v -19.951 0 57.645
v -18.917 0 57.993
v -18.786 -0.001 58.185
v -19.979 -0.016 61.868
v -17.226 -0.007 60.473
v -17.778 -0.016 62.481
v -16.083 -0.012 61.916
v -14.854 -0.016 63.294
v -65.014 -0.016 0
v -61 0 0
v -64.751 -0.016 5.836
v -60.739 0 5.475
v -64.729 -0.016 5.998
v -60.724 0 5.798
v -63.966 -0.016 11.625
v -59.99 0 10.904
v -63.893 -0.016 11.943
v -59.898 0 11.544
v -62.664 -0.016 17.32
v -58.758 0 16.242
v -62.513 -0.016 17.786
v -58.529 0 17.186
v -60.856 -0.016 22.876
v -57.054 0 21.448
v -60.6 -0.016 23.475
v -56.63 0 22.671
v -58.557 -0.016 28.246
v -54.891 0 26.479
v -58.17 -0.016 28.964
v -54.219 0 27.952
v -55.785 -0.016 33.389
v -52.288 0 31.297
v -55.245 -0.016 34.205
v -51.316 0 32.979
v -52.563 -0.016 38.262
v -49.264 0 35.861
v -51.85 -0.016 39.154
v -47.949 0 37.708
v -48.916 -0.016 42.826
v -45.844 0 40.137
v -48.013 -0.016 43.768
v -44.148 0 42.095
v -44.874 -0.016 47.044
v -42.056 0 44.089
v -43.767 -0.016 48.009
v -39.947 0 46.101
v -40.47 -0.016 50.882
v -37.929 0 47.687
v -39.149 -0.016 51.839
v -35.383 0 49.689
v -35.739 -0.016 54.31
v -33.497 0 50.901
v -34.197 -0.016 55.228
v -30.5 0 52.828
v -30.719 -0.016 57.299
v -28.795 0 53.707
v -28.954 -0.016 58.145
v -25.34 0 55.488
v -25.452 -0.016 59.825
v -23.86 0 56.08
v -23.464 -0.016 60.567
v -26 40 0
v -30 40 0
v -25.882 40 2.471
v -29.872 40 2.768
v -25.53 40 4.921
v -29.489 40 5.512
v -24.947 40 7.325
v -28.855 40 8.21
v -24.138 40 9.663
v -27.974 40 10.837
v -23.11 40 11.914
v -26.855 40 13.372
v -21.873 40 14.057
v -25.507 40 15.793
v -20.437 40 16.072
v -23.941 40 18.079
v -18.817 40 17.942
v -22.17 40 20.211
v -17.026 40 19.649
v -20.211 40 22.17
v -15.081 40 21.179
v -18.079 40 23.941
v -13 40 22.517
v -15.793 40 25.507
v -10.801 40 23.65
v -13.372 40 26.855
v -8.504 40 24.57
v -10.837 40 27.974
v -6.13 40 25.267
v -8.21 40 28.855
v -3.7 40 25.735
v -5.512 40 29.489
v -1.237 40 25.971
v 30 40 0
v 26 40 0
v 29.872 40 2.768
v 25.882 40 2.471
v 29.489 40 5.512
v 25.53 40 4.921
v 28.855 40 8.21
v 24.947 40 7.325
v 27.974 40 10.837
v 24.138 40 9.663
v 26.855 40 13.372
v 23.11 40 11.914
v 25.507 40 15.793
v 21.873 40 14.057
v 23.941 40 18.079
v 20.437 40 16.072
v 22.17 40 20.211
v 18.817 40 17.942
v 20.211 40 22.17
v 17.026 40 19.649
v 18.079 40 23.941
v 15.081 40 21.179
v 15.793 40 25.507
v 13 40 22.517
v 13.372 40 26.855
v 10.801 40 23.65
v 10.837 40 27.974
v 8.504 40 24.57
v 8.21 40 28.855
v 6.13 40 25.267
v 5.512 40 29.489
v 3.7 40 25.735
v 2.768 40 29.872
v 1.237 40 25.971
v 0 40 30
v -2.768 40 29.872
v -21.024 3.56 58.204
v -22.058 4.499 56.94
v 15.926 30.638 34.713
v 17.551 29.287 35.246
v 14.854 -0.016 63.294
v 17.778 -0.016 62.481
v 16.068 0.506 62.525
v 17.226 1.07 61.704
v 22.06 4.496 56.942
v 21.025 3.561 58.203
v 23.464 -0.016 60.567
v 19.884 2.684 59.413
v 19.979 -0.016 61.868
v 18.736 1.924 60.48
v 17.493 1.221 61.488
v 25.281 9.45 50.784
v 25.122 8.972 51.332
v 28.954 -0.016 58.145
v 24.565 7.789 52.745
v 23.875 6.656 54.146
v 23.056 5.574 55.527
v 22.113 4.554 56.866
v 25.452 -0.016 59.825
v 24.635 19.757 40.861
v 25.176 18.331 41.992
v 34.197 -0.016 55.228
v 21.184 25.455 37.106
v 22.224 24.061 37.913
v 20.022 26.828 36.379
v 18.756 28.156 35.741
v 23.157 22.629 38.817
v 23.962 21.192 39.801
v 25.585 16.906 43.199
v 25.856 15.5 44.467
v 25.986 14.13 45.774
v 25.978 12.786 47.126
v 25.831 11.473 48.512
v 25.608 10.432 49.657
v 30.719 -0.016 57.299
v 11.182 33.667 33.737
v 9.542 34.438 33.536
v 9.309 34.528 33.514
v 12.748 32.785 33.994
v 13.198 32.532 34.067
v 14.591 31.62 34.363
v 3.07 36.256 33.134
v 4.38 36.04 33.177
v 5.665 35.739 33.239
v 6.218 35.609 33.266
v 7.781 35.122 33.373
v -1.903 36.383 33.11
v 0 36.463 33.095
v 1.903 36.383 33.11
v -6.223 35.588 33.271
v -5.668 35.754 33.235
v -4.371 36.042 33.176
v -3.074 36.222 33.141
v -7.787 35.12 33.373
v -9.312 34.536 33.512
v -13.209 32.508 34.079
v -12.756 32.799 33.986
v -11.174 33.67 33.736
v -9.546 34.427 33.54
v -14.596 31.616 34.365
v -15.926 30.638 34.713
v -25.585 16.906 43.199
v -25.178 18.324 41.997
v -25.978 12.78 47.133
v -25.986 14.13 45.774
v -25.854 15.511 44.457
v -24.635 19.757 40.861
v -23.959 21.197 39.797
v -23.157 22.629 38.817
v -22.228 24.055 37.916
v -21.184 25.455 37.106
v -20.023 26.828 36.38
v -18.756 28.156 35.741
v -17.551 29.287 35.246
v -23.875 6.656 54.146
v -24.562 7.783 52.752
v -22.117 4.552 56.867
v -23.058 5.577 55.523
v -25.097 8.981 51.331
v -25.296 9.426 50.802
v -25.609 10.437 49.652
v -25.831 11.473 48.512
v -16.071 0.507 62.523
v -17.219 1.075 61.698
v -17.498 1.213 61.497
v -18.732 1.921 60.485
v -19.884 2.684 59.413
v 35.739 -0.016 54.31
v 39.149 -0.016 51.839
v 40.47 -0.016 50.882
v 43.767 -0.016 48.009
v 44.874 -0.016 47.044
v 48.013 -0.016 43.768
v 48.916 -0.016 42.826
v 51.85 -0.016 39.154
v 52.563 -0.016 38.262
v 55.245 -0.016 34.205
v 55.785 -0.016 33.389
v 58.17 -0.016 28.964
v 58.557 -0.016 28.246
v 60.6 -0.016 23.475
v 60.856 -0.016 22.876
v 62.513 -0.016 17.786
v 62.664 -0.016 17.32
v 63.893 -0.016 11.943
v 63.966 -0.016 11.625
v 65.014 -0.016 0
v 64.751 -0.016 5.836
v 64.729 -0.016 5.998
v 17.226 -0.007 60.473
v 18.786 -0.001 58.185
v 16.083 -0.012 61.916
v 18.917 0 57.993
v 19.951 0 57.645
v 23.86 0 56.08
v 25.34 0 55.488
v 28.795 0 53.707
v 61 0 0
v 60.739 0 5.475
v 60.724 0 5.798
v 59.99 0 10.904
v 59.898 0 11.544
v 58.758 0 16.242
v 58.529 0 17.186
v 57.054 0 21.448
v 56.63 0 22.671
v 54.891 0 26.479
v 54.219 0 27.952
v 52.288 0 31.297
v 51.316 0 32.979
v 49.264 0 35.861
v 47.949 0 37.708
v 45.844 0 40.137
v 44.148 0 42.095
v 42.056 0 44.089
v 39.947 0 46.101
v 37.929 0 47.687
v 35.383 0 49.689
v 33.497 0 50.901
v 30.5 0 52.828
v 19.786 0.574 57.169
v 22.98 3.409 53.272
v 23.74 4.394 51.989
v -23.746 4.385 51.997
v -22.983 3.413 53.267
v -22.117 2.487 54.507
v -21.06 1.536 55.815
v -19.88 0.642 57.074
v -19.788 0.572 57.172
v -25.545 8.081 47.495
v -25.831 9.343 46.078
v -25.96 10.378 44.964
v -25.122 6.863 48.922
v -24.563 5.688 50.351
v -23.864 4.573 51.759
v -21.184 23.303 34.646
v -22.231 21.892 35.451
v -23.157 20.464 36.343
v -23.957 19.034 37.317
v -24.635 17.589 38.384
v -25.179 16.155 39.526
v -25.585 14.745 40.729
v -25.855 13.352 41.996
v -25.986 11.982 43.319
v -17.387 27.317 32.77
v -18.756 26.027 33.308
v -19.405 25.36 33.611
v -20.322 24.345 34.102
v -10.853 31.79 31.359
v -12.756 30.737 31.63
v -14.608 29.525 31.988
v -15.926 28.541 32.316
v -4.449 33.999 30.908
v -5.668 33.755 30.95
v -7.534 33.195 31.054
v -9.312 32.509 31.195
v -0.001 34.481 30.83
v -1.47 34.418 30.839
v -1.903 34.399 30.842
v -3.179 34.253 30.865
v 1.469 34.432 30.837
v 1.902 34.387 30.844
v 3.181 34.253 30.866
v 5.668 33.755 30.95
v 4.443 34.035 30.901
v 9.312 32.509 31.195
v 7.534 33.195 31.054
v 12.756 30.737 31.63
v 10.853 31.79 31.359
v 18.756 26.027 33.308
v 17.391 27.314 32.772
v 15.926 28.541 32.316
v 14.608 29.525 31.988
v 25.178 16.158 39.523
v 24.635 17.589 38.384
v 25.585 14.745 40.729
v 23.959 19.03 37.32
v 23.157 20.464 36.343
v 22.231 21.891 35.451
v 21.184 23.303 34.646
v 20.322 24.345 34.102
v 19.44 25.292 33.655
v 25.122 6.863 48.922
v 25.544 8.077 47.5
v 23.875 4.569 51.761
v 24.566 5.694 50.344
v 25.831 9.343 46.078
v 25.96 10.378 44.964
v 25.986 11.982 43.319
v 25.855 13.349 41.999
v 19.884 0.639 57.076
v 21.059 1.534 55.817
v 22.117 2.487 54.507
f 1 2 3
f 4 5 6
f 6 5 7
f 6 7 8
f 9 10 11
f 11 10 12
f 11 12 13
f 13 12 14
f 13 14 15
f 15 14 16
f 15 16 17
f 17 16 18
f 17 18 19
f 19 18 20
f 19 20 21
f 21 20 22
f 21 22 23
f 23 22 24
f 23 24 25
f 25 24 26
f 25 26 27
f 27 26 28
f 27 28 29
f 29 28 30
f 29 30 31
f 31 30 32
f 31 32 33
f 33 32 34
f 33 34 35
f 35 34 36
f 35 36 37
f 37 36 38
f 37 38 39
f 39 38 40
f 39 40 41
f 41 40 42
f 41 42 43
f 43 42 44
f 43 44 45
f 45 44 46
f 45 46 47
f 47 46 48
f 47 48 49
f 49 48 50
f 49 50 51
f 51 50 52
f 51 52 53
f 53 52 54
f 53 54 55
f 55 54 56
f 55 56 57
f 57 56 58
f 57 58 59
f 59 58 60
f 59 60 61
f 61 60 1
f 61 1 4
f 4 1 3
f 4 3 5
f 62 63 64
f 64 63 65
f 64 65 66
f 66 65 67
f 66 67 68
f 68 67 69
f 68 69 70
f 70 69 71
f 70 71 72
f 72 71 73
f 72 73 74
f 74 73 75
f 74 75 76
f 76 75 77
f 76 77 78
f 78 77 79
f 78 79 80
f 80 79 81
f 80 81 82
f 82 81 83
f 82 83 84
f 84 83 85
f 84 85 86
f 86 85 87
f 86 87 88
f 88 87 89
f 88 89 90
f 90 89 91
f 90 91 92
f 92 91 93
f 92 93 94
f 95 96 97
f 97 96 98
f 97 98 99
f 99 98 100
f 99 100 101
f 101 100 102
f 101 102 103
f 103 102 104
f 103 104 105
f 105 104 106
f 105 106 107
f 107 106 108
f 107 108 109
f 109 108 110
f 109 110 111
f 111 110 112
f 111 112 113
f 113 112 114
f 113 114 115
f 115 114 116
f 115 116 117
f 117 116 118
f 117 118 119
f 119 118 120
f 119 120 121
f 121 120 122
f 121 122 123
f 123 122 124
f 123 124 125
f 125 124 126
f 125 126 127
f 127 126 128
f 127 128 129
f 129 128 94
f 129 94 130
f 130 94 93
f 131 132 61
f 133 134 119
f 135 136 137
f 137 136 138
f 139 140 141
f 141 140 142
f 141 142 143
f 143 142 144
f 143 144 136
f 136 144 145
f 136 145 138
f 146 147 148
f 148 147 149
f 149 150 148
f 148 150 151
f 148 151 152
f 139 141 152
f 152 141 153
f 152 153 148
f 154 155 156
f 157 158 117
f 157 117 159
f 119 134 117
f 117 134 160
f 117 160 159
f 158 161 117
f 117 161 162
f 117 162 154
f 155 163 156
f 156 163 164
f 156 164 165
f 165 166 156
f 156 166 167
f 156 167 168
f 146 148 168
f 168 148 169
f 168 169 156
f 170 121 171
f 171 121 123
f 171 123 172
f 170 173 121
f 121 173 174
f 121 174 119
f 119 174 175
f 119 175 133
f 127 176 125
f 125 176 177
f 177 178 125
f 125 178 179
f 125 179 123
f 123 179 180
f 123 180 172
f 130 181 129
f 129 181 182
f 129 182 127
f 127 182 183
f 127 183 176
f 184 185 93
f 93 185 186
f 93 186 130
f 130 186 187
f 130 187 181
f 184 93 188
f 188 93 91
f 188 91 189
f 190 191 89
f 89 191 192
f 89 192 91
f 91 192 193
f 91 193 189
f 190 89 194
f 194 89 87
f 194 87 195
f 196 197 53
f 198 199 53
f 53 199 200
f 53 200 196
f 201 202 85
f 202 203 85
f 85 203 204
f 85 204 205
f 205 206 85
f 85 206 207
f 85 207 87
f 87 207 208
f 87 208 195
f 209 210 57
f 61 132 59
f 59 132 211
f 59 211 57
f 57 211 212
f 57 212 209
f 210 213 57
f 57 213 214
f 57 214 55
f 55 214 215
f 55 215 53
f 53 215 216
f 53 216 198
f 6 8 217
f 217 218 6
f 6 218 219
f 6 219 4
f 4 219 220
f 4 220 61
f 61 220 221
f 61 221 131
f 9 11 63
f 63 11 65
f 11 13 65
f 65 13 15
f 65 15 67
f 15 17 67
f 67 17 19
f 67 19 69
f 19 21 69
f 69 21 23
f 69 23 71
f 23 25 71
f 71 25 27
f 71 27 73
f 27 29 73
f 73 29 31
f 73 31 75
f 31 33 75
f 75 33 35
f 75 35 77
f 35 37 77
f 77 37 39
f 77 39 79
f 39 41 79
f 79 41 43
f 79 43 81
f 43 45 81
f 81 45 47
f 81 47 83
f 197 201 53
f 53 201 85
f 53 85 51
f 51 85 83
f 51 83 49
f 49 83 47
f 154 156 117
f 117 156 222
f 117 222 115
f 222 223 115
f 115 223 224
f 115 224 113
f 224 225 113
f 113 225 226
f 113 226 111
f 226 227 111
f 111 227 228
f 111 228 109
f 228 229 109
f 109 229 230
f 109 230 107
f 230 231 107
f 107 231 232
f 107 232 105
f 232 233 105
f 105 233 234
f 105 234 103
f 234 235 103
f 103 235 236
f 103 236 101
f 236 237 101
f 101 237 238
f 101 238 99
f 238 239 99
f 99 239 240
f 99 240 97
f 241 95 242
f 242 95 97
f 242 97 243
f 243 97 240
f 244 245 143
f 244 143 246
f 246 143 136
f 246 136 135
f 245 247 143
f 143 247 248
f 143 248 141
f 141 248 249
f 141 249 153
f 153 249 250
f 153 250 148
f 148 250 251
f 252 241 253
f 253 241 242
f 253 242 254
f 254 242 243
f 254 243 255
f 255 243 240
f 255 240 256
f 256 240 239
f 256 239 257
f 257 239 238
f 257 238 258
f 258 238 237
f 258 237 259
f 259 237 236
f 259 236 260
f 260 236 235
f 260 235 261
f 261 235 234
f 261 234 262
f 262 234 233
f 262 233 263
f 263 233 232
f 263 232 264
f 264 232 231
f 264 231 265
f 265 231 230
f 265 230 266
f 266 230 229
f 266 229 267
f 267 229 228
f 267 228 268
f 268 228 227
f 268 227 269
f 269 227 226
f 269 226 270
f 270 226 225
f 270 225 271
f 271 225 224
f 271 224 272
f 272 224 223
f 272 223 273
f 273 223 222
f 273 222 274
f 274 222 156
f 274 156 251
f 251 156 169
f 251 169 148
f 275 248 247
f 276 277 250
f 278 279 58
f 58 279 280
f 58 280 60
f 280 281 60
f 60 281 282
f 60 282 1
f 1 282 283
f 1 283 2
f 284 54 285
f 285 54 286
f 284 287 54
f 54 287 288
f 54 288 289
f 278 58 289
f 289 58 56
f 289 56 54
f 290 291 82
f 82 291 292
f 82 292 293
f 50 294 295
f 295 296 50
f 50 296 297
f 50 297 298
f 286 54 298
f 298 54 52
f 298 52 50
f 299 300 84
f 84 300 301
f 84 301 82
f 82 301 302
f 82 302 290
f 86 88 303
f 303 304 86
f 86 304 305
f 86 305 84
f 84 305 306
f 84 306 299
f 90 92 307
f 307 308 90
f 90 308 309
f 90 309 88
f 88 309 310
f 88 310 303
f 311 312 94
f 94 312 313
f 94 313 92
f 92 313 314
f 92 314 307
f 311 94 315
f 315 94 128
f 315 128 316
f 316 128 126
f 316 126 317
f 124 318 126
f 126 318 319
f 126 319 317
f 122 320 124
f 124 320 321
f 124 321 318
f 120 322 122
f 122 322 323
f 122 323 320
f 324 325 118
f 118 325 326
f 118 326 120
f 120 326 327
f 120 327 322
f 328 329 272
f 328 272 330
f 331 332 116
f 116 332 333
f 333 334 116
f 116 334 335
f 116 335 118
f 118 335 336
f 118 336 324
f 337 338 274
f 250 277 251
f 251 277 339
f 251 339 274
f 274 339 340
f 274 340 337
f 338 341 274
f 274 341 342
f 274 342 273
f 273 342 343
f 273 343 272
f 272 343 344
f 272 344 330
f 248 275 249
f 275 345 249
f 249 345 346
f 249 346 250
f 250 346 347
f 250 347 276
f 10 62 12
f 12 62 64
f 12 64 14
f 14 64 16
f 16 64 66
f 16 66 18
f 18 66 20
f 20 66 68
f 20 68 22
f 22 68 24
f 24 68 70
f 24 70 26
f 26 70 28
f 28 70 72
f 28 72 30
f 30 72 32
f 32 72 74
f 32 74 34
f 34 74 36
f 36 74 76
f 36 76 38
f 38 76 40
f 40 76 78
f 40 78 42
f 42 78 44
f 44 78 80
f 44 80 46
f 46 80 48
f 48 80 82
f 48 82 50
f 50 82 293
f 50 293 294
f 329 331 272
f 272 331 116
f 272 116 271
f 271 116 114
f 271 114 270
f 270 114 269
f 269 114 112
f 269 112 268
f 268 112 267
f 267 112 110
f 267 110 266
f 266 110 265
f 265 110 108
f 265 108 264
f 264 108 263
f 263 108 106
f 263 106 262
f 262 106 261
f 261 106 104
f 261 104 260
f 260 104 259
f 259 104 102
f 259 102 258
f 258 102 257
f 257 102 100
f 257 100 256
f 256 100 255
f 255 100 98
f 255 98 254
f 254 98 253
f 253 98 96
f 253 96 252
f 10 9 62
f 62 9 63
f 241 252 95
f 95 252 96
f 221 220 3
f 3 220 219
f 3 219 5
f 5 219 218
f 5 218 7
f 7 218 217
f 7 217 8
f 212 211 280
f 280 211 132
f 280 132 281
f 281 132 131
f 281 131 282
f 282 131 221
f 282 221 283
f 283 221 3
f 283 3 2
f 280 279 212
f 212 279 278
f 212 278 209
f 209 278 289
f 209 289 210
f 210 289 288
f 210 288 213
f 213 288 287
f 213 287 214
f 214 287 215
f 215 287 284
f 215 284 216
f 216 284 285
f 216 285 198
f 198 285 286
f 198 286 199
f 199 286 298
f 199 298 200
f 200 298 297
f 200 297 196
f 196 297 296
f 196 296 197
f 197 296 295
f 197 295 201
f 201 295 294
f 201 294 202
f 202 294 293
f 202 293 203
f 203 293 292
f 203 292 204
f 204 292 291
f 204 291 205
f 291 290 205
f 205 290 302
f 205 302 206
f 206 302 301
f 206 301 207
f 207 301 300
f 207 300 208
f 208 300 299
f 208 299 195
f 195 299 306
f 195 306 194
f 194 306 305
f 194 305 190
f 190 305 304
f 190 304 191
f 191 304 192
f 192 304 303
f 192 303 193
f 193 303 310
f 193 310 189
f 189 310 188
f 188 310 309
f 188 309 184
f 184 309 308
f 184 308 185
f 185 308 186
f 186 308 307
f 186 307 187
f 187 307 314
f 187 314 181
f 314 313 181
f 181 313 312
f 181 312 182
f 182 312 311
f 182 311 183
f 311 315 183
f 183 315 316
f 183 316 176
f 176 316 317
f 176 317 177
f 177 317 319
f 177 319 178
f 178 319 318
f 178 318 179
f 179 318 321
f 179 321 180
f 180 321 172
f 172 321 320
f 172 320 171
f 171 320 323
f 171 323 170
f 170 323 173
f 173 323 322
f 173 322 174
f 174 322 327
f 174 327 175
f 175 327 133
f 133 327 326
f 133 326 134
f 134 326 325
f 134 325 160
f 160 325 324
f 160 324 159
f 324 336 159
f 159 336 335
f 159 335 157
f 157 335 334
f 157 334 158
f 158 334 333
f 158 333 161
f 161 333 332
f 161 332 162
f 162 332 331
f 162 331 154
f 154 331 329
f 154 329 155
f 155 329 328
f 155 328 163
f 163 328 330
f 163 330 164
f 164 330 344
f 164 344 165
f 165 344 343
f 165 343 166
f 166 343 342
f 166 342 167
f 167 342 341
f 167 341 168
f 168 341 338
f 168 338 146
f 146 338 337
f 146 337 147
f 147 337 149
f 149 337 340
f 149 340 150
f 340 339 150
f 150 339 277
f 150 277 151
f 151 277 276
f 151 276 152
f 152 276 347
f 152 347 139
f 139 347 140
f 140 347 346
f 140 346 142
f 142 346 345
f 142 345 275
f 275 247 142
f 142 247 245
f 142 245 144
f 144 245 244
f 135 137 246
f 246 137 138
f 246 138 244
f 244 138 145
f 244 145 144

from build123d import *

# Parameters (mm, degrees)
REVOLVE1_ANGLE     = 180
SKETCH3_R          = 26
CUT_EXTRUDE1_DEPTH = 10


with BuildPart() as part:
    # Sketch1 → Revolve1 (revolve)
    with BuildSketch(Plane.XY):
        Polygon((26, 40), (61, 0), (65.013813376, -0.015786716), (30, 40), align=None)
    revolve(axis=Axis((0, 40, 0), (0, -1, 0)), revolution_arc=REVOLVE1_ANGLE)

    # Sketch3 → Cut-Extrude1 (cut)
    with BuildSketch(Plane(origin=(0, 32.212389381, 36.814159292), x_dir=(1, 0, 0), z_dir=(0, 0.6585046078685183, 0.7525766947068778))):
        with Locations((0, -20.352106134)):
            Circle(SKETCH3_R)
    extrude(amount=-CUT_EXTRUDE1_DEPTH, mode=Mode.SUBTRACT)


solid = part.part
